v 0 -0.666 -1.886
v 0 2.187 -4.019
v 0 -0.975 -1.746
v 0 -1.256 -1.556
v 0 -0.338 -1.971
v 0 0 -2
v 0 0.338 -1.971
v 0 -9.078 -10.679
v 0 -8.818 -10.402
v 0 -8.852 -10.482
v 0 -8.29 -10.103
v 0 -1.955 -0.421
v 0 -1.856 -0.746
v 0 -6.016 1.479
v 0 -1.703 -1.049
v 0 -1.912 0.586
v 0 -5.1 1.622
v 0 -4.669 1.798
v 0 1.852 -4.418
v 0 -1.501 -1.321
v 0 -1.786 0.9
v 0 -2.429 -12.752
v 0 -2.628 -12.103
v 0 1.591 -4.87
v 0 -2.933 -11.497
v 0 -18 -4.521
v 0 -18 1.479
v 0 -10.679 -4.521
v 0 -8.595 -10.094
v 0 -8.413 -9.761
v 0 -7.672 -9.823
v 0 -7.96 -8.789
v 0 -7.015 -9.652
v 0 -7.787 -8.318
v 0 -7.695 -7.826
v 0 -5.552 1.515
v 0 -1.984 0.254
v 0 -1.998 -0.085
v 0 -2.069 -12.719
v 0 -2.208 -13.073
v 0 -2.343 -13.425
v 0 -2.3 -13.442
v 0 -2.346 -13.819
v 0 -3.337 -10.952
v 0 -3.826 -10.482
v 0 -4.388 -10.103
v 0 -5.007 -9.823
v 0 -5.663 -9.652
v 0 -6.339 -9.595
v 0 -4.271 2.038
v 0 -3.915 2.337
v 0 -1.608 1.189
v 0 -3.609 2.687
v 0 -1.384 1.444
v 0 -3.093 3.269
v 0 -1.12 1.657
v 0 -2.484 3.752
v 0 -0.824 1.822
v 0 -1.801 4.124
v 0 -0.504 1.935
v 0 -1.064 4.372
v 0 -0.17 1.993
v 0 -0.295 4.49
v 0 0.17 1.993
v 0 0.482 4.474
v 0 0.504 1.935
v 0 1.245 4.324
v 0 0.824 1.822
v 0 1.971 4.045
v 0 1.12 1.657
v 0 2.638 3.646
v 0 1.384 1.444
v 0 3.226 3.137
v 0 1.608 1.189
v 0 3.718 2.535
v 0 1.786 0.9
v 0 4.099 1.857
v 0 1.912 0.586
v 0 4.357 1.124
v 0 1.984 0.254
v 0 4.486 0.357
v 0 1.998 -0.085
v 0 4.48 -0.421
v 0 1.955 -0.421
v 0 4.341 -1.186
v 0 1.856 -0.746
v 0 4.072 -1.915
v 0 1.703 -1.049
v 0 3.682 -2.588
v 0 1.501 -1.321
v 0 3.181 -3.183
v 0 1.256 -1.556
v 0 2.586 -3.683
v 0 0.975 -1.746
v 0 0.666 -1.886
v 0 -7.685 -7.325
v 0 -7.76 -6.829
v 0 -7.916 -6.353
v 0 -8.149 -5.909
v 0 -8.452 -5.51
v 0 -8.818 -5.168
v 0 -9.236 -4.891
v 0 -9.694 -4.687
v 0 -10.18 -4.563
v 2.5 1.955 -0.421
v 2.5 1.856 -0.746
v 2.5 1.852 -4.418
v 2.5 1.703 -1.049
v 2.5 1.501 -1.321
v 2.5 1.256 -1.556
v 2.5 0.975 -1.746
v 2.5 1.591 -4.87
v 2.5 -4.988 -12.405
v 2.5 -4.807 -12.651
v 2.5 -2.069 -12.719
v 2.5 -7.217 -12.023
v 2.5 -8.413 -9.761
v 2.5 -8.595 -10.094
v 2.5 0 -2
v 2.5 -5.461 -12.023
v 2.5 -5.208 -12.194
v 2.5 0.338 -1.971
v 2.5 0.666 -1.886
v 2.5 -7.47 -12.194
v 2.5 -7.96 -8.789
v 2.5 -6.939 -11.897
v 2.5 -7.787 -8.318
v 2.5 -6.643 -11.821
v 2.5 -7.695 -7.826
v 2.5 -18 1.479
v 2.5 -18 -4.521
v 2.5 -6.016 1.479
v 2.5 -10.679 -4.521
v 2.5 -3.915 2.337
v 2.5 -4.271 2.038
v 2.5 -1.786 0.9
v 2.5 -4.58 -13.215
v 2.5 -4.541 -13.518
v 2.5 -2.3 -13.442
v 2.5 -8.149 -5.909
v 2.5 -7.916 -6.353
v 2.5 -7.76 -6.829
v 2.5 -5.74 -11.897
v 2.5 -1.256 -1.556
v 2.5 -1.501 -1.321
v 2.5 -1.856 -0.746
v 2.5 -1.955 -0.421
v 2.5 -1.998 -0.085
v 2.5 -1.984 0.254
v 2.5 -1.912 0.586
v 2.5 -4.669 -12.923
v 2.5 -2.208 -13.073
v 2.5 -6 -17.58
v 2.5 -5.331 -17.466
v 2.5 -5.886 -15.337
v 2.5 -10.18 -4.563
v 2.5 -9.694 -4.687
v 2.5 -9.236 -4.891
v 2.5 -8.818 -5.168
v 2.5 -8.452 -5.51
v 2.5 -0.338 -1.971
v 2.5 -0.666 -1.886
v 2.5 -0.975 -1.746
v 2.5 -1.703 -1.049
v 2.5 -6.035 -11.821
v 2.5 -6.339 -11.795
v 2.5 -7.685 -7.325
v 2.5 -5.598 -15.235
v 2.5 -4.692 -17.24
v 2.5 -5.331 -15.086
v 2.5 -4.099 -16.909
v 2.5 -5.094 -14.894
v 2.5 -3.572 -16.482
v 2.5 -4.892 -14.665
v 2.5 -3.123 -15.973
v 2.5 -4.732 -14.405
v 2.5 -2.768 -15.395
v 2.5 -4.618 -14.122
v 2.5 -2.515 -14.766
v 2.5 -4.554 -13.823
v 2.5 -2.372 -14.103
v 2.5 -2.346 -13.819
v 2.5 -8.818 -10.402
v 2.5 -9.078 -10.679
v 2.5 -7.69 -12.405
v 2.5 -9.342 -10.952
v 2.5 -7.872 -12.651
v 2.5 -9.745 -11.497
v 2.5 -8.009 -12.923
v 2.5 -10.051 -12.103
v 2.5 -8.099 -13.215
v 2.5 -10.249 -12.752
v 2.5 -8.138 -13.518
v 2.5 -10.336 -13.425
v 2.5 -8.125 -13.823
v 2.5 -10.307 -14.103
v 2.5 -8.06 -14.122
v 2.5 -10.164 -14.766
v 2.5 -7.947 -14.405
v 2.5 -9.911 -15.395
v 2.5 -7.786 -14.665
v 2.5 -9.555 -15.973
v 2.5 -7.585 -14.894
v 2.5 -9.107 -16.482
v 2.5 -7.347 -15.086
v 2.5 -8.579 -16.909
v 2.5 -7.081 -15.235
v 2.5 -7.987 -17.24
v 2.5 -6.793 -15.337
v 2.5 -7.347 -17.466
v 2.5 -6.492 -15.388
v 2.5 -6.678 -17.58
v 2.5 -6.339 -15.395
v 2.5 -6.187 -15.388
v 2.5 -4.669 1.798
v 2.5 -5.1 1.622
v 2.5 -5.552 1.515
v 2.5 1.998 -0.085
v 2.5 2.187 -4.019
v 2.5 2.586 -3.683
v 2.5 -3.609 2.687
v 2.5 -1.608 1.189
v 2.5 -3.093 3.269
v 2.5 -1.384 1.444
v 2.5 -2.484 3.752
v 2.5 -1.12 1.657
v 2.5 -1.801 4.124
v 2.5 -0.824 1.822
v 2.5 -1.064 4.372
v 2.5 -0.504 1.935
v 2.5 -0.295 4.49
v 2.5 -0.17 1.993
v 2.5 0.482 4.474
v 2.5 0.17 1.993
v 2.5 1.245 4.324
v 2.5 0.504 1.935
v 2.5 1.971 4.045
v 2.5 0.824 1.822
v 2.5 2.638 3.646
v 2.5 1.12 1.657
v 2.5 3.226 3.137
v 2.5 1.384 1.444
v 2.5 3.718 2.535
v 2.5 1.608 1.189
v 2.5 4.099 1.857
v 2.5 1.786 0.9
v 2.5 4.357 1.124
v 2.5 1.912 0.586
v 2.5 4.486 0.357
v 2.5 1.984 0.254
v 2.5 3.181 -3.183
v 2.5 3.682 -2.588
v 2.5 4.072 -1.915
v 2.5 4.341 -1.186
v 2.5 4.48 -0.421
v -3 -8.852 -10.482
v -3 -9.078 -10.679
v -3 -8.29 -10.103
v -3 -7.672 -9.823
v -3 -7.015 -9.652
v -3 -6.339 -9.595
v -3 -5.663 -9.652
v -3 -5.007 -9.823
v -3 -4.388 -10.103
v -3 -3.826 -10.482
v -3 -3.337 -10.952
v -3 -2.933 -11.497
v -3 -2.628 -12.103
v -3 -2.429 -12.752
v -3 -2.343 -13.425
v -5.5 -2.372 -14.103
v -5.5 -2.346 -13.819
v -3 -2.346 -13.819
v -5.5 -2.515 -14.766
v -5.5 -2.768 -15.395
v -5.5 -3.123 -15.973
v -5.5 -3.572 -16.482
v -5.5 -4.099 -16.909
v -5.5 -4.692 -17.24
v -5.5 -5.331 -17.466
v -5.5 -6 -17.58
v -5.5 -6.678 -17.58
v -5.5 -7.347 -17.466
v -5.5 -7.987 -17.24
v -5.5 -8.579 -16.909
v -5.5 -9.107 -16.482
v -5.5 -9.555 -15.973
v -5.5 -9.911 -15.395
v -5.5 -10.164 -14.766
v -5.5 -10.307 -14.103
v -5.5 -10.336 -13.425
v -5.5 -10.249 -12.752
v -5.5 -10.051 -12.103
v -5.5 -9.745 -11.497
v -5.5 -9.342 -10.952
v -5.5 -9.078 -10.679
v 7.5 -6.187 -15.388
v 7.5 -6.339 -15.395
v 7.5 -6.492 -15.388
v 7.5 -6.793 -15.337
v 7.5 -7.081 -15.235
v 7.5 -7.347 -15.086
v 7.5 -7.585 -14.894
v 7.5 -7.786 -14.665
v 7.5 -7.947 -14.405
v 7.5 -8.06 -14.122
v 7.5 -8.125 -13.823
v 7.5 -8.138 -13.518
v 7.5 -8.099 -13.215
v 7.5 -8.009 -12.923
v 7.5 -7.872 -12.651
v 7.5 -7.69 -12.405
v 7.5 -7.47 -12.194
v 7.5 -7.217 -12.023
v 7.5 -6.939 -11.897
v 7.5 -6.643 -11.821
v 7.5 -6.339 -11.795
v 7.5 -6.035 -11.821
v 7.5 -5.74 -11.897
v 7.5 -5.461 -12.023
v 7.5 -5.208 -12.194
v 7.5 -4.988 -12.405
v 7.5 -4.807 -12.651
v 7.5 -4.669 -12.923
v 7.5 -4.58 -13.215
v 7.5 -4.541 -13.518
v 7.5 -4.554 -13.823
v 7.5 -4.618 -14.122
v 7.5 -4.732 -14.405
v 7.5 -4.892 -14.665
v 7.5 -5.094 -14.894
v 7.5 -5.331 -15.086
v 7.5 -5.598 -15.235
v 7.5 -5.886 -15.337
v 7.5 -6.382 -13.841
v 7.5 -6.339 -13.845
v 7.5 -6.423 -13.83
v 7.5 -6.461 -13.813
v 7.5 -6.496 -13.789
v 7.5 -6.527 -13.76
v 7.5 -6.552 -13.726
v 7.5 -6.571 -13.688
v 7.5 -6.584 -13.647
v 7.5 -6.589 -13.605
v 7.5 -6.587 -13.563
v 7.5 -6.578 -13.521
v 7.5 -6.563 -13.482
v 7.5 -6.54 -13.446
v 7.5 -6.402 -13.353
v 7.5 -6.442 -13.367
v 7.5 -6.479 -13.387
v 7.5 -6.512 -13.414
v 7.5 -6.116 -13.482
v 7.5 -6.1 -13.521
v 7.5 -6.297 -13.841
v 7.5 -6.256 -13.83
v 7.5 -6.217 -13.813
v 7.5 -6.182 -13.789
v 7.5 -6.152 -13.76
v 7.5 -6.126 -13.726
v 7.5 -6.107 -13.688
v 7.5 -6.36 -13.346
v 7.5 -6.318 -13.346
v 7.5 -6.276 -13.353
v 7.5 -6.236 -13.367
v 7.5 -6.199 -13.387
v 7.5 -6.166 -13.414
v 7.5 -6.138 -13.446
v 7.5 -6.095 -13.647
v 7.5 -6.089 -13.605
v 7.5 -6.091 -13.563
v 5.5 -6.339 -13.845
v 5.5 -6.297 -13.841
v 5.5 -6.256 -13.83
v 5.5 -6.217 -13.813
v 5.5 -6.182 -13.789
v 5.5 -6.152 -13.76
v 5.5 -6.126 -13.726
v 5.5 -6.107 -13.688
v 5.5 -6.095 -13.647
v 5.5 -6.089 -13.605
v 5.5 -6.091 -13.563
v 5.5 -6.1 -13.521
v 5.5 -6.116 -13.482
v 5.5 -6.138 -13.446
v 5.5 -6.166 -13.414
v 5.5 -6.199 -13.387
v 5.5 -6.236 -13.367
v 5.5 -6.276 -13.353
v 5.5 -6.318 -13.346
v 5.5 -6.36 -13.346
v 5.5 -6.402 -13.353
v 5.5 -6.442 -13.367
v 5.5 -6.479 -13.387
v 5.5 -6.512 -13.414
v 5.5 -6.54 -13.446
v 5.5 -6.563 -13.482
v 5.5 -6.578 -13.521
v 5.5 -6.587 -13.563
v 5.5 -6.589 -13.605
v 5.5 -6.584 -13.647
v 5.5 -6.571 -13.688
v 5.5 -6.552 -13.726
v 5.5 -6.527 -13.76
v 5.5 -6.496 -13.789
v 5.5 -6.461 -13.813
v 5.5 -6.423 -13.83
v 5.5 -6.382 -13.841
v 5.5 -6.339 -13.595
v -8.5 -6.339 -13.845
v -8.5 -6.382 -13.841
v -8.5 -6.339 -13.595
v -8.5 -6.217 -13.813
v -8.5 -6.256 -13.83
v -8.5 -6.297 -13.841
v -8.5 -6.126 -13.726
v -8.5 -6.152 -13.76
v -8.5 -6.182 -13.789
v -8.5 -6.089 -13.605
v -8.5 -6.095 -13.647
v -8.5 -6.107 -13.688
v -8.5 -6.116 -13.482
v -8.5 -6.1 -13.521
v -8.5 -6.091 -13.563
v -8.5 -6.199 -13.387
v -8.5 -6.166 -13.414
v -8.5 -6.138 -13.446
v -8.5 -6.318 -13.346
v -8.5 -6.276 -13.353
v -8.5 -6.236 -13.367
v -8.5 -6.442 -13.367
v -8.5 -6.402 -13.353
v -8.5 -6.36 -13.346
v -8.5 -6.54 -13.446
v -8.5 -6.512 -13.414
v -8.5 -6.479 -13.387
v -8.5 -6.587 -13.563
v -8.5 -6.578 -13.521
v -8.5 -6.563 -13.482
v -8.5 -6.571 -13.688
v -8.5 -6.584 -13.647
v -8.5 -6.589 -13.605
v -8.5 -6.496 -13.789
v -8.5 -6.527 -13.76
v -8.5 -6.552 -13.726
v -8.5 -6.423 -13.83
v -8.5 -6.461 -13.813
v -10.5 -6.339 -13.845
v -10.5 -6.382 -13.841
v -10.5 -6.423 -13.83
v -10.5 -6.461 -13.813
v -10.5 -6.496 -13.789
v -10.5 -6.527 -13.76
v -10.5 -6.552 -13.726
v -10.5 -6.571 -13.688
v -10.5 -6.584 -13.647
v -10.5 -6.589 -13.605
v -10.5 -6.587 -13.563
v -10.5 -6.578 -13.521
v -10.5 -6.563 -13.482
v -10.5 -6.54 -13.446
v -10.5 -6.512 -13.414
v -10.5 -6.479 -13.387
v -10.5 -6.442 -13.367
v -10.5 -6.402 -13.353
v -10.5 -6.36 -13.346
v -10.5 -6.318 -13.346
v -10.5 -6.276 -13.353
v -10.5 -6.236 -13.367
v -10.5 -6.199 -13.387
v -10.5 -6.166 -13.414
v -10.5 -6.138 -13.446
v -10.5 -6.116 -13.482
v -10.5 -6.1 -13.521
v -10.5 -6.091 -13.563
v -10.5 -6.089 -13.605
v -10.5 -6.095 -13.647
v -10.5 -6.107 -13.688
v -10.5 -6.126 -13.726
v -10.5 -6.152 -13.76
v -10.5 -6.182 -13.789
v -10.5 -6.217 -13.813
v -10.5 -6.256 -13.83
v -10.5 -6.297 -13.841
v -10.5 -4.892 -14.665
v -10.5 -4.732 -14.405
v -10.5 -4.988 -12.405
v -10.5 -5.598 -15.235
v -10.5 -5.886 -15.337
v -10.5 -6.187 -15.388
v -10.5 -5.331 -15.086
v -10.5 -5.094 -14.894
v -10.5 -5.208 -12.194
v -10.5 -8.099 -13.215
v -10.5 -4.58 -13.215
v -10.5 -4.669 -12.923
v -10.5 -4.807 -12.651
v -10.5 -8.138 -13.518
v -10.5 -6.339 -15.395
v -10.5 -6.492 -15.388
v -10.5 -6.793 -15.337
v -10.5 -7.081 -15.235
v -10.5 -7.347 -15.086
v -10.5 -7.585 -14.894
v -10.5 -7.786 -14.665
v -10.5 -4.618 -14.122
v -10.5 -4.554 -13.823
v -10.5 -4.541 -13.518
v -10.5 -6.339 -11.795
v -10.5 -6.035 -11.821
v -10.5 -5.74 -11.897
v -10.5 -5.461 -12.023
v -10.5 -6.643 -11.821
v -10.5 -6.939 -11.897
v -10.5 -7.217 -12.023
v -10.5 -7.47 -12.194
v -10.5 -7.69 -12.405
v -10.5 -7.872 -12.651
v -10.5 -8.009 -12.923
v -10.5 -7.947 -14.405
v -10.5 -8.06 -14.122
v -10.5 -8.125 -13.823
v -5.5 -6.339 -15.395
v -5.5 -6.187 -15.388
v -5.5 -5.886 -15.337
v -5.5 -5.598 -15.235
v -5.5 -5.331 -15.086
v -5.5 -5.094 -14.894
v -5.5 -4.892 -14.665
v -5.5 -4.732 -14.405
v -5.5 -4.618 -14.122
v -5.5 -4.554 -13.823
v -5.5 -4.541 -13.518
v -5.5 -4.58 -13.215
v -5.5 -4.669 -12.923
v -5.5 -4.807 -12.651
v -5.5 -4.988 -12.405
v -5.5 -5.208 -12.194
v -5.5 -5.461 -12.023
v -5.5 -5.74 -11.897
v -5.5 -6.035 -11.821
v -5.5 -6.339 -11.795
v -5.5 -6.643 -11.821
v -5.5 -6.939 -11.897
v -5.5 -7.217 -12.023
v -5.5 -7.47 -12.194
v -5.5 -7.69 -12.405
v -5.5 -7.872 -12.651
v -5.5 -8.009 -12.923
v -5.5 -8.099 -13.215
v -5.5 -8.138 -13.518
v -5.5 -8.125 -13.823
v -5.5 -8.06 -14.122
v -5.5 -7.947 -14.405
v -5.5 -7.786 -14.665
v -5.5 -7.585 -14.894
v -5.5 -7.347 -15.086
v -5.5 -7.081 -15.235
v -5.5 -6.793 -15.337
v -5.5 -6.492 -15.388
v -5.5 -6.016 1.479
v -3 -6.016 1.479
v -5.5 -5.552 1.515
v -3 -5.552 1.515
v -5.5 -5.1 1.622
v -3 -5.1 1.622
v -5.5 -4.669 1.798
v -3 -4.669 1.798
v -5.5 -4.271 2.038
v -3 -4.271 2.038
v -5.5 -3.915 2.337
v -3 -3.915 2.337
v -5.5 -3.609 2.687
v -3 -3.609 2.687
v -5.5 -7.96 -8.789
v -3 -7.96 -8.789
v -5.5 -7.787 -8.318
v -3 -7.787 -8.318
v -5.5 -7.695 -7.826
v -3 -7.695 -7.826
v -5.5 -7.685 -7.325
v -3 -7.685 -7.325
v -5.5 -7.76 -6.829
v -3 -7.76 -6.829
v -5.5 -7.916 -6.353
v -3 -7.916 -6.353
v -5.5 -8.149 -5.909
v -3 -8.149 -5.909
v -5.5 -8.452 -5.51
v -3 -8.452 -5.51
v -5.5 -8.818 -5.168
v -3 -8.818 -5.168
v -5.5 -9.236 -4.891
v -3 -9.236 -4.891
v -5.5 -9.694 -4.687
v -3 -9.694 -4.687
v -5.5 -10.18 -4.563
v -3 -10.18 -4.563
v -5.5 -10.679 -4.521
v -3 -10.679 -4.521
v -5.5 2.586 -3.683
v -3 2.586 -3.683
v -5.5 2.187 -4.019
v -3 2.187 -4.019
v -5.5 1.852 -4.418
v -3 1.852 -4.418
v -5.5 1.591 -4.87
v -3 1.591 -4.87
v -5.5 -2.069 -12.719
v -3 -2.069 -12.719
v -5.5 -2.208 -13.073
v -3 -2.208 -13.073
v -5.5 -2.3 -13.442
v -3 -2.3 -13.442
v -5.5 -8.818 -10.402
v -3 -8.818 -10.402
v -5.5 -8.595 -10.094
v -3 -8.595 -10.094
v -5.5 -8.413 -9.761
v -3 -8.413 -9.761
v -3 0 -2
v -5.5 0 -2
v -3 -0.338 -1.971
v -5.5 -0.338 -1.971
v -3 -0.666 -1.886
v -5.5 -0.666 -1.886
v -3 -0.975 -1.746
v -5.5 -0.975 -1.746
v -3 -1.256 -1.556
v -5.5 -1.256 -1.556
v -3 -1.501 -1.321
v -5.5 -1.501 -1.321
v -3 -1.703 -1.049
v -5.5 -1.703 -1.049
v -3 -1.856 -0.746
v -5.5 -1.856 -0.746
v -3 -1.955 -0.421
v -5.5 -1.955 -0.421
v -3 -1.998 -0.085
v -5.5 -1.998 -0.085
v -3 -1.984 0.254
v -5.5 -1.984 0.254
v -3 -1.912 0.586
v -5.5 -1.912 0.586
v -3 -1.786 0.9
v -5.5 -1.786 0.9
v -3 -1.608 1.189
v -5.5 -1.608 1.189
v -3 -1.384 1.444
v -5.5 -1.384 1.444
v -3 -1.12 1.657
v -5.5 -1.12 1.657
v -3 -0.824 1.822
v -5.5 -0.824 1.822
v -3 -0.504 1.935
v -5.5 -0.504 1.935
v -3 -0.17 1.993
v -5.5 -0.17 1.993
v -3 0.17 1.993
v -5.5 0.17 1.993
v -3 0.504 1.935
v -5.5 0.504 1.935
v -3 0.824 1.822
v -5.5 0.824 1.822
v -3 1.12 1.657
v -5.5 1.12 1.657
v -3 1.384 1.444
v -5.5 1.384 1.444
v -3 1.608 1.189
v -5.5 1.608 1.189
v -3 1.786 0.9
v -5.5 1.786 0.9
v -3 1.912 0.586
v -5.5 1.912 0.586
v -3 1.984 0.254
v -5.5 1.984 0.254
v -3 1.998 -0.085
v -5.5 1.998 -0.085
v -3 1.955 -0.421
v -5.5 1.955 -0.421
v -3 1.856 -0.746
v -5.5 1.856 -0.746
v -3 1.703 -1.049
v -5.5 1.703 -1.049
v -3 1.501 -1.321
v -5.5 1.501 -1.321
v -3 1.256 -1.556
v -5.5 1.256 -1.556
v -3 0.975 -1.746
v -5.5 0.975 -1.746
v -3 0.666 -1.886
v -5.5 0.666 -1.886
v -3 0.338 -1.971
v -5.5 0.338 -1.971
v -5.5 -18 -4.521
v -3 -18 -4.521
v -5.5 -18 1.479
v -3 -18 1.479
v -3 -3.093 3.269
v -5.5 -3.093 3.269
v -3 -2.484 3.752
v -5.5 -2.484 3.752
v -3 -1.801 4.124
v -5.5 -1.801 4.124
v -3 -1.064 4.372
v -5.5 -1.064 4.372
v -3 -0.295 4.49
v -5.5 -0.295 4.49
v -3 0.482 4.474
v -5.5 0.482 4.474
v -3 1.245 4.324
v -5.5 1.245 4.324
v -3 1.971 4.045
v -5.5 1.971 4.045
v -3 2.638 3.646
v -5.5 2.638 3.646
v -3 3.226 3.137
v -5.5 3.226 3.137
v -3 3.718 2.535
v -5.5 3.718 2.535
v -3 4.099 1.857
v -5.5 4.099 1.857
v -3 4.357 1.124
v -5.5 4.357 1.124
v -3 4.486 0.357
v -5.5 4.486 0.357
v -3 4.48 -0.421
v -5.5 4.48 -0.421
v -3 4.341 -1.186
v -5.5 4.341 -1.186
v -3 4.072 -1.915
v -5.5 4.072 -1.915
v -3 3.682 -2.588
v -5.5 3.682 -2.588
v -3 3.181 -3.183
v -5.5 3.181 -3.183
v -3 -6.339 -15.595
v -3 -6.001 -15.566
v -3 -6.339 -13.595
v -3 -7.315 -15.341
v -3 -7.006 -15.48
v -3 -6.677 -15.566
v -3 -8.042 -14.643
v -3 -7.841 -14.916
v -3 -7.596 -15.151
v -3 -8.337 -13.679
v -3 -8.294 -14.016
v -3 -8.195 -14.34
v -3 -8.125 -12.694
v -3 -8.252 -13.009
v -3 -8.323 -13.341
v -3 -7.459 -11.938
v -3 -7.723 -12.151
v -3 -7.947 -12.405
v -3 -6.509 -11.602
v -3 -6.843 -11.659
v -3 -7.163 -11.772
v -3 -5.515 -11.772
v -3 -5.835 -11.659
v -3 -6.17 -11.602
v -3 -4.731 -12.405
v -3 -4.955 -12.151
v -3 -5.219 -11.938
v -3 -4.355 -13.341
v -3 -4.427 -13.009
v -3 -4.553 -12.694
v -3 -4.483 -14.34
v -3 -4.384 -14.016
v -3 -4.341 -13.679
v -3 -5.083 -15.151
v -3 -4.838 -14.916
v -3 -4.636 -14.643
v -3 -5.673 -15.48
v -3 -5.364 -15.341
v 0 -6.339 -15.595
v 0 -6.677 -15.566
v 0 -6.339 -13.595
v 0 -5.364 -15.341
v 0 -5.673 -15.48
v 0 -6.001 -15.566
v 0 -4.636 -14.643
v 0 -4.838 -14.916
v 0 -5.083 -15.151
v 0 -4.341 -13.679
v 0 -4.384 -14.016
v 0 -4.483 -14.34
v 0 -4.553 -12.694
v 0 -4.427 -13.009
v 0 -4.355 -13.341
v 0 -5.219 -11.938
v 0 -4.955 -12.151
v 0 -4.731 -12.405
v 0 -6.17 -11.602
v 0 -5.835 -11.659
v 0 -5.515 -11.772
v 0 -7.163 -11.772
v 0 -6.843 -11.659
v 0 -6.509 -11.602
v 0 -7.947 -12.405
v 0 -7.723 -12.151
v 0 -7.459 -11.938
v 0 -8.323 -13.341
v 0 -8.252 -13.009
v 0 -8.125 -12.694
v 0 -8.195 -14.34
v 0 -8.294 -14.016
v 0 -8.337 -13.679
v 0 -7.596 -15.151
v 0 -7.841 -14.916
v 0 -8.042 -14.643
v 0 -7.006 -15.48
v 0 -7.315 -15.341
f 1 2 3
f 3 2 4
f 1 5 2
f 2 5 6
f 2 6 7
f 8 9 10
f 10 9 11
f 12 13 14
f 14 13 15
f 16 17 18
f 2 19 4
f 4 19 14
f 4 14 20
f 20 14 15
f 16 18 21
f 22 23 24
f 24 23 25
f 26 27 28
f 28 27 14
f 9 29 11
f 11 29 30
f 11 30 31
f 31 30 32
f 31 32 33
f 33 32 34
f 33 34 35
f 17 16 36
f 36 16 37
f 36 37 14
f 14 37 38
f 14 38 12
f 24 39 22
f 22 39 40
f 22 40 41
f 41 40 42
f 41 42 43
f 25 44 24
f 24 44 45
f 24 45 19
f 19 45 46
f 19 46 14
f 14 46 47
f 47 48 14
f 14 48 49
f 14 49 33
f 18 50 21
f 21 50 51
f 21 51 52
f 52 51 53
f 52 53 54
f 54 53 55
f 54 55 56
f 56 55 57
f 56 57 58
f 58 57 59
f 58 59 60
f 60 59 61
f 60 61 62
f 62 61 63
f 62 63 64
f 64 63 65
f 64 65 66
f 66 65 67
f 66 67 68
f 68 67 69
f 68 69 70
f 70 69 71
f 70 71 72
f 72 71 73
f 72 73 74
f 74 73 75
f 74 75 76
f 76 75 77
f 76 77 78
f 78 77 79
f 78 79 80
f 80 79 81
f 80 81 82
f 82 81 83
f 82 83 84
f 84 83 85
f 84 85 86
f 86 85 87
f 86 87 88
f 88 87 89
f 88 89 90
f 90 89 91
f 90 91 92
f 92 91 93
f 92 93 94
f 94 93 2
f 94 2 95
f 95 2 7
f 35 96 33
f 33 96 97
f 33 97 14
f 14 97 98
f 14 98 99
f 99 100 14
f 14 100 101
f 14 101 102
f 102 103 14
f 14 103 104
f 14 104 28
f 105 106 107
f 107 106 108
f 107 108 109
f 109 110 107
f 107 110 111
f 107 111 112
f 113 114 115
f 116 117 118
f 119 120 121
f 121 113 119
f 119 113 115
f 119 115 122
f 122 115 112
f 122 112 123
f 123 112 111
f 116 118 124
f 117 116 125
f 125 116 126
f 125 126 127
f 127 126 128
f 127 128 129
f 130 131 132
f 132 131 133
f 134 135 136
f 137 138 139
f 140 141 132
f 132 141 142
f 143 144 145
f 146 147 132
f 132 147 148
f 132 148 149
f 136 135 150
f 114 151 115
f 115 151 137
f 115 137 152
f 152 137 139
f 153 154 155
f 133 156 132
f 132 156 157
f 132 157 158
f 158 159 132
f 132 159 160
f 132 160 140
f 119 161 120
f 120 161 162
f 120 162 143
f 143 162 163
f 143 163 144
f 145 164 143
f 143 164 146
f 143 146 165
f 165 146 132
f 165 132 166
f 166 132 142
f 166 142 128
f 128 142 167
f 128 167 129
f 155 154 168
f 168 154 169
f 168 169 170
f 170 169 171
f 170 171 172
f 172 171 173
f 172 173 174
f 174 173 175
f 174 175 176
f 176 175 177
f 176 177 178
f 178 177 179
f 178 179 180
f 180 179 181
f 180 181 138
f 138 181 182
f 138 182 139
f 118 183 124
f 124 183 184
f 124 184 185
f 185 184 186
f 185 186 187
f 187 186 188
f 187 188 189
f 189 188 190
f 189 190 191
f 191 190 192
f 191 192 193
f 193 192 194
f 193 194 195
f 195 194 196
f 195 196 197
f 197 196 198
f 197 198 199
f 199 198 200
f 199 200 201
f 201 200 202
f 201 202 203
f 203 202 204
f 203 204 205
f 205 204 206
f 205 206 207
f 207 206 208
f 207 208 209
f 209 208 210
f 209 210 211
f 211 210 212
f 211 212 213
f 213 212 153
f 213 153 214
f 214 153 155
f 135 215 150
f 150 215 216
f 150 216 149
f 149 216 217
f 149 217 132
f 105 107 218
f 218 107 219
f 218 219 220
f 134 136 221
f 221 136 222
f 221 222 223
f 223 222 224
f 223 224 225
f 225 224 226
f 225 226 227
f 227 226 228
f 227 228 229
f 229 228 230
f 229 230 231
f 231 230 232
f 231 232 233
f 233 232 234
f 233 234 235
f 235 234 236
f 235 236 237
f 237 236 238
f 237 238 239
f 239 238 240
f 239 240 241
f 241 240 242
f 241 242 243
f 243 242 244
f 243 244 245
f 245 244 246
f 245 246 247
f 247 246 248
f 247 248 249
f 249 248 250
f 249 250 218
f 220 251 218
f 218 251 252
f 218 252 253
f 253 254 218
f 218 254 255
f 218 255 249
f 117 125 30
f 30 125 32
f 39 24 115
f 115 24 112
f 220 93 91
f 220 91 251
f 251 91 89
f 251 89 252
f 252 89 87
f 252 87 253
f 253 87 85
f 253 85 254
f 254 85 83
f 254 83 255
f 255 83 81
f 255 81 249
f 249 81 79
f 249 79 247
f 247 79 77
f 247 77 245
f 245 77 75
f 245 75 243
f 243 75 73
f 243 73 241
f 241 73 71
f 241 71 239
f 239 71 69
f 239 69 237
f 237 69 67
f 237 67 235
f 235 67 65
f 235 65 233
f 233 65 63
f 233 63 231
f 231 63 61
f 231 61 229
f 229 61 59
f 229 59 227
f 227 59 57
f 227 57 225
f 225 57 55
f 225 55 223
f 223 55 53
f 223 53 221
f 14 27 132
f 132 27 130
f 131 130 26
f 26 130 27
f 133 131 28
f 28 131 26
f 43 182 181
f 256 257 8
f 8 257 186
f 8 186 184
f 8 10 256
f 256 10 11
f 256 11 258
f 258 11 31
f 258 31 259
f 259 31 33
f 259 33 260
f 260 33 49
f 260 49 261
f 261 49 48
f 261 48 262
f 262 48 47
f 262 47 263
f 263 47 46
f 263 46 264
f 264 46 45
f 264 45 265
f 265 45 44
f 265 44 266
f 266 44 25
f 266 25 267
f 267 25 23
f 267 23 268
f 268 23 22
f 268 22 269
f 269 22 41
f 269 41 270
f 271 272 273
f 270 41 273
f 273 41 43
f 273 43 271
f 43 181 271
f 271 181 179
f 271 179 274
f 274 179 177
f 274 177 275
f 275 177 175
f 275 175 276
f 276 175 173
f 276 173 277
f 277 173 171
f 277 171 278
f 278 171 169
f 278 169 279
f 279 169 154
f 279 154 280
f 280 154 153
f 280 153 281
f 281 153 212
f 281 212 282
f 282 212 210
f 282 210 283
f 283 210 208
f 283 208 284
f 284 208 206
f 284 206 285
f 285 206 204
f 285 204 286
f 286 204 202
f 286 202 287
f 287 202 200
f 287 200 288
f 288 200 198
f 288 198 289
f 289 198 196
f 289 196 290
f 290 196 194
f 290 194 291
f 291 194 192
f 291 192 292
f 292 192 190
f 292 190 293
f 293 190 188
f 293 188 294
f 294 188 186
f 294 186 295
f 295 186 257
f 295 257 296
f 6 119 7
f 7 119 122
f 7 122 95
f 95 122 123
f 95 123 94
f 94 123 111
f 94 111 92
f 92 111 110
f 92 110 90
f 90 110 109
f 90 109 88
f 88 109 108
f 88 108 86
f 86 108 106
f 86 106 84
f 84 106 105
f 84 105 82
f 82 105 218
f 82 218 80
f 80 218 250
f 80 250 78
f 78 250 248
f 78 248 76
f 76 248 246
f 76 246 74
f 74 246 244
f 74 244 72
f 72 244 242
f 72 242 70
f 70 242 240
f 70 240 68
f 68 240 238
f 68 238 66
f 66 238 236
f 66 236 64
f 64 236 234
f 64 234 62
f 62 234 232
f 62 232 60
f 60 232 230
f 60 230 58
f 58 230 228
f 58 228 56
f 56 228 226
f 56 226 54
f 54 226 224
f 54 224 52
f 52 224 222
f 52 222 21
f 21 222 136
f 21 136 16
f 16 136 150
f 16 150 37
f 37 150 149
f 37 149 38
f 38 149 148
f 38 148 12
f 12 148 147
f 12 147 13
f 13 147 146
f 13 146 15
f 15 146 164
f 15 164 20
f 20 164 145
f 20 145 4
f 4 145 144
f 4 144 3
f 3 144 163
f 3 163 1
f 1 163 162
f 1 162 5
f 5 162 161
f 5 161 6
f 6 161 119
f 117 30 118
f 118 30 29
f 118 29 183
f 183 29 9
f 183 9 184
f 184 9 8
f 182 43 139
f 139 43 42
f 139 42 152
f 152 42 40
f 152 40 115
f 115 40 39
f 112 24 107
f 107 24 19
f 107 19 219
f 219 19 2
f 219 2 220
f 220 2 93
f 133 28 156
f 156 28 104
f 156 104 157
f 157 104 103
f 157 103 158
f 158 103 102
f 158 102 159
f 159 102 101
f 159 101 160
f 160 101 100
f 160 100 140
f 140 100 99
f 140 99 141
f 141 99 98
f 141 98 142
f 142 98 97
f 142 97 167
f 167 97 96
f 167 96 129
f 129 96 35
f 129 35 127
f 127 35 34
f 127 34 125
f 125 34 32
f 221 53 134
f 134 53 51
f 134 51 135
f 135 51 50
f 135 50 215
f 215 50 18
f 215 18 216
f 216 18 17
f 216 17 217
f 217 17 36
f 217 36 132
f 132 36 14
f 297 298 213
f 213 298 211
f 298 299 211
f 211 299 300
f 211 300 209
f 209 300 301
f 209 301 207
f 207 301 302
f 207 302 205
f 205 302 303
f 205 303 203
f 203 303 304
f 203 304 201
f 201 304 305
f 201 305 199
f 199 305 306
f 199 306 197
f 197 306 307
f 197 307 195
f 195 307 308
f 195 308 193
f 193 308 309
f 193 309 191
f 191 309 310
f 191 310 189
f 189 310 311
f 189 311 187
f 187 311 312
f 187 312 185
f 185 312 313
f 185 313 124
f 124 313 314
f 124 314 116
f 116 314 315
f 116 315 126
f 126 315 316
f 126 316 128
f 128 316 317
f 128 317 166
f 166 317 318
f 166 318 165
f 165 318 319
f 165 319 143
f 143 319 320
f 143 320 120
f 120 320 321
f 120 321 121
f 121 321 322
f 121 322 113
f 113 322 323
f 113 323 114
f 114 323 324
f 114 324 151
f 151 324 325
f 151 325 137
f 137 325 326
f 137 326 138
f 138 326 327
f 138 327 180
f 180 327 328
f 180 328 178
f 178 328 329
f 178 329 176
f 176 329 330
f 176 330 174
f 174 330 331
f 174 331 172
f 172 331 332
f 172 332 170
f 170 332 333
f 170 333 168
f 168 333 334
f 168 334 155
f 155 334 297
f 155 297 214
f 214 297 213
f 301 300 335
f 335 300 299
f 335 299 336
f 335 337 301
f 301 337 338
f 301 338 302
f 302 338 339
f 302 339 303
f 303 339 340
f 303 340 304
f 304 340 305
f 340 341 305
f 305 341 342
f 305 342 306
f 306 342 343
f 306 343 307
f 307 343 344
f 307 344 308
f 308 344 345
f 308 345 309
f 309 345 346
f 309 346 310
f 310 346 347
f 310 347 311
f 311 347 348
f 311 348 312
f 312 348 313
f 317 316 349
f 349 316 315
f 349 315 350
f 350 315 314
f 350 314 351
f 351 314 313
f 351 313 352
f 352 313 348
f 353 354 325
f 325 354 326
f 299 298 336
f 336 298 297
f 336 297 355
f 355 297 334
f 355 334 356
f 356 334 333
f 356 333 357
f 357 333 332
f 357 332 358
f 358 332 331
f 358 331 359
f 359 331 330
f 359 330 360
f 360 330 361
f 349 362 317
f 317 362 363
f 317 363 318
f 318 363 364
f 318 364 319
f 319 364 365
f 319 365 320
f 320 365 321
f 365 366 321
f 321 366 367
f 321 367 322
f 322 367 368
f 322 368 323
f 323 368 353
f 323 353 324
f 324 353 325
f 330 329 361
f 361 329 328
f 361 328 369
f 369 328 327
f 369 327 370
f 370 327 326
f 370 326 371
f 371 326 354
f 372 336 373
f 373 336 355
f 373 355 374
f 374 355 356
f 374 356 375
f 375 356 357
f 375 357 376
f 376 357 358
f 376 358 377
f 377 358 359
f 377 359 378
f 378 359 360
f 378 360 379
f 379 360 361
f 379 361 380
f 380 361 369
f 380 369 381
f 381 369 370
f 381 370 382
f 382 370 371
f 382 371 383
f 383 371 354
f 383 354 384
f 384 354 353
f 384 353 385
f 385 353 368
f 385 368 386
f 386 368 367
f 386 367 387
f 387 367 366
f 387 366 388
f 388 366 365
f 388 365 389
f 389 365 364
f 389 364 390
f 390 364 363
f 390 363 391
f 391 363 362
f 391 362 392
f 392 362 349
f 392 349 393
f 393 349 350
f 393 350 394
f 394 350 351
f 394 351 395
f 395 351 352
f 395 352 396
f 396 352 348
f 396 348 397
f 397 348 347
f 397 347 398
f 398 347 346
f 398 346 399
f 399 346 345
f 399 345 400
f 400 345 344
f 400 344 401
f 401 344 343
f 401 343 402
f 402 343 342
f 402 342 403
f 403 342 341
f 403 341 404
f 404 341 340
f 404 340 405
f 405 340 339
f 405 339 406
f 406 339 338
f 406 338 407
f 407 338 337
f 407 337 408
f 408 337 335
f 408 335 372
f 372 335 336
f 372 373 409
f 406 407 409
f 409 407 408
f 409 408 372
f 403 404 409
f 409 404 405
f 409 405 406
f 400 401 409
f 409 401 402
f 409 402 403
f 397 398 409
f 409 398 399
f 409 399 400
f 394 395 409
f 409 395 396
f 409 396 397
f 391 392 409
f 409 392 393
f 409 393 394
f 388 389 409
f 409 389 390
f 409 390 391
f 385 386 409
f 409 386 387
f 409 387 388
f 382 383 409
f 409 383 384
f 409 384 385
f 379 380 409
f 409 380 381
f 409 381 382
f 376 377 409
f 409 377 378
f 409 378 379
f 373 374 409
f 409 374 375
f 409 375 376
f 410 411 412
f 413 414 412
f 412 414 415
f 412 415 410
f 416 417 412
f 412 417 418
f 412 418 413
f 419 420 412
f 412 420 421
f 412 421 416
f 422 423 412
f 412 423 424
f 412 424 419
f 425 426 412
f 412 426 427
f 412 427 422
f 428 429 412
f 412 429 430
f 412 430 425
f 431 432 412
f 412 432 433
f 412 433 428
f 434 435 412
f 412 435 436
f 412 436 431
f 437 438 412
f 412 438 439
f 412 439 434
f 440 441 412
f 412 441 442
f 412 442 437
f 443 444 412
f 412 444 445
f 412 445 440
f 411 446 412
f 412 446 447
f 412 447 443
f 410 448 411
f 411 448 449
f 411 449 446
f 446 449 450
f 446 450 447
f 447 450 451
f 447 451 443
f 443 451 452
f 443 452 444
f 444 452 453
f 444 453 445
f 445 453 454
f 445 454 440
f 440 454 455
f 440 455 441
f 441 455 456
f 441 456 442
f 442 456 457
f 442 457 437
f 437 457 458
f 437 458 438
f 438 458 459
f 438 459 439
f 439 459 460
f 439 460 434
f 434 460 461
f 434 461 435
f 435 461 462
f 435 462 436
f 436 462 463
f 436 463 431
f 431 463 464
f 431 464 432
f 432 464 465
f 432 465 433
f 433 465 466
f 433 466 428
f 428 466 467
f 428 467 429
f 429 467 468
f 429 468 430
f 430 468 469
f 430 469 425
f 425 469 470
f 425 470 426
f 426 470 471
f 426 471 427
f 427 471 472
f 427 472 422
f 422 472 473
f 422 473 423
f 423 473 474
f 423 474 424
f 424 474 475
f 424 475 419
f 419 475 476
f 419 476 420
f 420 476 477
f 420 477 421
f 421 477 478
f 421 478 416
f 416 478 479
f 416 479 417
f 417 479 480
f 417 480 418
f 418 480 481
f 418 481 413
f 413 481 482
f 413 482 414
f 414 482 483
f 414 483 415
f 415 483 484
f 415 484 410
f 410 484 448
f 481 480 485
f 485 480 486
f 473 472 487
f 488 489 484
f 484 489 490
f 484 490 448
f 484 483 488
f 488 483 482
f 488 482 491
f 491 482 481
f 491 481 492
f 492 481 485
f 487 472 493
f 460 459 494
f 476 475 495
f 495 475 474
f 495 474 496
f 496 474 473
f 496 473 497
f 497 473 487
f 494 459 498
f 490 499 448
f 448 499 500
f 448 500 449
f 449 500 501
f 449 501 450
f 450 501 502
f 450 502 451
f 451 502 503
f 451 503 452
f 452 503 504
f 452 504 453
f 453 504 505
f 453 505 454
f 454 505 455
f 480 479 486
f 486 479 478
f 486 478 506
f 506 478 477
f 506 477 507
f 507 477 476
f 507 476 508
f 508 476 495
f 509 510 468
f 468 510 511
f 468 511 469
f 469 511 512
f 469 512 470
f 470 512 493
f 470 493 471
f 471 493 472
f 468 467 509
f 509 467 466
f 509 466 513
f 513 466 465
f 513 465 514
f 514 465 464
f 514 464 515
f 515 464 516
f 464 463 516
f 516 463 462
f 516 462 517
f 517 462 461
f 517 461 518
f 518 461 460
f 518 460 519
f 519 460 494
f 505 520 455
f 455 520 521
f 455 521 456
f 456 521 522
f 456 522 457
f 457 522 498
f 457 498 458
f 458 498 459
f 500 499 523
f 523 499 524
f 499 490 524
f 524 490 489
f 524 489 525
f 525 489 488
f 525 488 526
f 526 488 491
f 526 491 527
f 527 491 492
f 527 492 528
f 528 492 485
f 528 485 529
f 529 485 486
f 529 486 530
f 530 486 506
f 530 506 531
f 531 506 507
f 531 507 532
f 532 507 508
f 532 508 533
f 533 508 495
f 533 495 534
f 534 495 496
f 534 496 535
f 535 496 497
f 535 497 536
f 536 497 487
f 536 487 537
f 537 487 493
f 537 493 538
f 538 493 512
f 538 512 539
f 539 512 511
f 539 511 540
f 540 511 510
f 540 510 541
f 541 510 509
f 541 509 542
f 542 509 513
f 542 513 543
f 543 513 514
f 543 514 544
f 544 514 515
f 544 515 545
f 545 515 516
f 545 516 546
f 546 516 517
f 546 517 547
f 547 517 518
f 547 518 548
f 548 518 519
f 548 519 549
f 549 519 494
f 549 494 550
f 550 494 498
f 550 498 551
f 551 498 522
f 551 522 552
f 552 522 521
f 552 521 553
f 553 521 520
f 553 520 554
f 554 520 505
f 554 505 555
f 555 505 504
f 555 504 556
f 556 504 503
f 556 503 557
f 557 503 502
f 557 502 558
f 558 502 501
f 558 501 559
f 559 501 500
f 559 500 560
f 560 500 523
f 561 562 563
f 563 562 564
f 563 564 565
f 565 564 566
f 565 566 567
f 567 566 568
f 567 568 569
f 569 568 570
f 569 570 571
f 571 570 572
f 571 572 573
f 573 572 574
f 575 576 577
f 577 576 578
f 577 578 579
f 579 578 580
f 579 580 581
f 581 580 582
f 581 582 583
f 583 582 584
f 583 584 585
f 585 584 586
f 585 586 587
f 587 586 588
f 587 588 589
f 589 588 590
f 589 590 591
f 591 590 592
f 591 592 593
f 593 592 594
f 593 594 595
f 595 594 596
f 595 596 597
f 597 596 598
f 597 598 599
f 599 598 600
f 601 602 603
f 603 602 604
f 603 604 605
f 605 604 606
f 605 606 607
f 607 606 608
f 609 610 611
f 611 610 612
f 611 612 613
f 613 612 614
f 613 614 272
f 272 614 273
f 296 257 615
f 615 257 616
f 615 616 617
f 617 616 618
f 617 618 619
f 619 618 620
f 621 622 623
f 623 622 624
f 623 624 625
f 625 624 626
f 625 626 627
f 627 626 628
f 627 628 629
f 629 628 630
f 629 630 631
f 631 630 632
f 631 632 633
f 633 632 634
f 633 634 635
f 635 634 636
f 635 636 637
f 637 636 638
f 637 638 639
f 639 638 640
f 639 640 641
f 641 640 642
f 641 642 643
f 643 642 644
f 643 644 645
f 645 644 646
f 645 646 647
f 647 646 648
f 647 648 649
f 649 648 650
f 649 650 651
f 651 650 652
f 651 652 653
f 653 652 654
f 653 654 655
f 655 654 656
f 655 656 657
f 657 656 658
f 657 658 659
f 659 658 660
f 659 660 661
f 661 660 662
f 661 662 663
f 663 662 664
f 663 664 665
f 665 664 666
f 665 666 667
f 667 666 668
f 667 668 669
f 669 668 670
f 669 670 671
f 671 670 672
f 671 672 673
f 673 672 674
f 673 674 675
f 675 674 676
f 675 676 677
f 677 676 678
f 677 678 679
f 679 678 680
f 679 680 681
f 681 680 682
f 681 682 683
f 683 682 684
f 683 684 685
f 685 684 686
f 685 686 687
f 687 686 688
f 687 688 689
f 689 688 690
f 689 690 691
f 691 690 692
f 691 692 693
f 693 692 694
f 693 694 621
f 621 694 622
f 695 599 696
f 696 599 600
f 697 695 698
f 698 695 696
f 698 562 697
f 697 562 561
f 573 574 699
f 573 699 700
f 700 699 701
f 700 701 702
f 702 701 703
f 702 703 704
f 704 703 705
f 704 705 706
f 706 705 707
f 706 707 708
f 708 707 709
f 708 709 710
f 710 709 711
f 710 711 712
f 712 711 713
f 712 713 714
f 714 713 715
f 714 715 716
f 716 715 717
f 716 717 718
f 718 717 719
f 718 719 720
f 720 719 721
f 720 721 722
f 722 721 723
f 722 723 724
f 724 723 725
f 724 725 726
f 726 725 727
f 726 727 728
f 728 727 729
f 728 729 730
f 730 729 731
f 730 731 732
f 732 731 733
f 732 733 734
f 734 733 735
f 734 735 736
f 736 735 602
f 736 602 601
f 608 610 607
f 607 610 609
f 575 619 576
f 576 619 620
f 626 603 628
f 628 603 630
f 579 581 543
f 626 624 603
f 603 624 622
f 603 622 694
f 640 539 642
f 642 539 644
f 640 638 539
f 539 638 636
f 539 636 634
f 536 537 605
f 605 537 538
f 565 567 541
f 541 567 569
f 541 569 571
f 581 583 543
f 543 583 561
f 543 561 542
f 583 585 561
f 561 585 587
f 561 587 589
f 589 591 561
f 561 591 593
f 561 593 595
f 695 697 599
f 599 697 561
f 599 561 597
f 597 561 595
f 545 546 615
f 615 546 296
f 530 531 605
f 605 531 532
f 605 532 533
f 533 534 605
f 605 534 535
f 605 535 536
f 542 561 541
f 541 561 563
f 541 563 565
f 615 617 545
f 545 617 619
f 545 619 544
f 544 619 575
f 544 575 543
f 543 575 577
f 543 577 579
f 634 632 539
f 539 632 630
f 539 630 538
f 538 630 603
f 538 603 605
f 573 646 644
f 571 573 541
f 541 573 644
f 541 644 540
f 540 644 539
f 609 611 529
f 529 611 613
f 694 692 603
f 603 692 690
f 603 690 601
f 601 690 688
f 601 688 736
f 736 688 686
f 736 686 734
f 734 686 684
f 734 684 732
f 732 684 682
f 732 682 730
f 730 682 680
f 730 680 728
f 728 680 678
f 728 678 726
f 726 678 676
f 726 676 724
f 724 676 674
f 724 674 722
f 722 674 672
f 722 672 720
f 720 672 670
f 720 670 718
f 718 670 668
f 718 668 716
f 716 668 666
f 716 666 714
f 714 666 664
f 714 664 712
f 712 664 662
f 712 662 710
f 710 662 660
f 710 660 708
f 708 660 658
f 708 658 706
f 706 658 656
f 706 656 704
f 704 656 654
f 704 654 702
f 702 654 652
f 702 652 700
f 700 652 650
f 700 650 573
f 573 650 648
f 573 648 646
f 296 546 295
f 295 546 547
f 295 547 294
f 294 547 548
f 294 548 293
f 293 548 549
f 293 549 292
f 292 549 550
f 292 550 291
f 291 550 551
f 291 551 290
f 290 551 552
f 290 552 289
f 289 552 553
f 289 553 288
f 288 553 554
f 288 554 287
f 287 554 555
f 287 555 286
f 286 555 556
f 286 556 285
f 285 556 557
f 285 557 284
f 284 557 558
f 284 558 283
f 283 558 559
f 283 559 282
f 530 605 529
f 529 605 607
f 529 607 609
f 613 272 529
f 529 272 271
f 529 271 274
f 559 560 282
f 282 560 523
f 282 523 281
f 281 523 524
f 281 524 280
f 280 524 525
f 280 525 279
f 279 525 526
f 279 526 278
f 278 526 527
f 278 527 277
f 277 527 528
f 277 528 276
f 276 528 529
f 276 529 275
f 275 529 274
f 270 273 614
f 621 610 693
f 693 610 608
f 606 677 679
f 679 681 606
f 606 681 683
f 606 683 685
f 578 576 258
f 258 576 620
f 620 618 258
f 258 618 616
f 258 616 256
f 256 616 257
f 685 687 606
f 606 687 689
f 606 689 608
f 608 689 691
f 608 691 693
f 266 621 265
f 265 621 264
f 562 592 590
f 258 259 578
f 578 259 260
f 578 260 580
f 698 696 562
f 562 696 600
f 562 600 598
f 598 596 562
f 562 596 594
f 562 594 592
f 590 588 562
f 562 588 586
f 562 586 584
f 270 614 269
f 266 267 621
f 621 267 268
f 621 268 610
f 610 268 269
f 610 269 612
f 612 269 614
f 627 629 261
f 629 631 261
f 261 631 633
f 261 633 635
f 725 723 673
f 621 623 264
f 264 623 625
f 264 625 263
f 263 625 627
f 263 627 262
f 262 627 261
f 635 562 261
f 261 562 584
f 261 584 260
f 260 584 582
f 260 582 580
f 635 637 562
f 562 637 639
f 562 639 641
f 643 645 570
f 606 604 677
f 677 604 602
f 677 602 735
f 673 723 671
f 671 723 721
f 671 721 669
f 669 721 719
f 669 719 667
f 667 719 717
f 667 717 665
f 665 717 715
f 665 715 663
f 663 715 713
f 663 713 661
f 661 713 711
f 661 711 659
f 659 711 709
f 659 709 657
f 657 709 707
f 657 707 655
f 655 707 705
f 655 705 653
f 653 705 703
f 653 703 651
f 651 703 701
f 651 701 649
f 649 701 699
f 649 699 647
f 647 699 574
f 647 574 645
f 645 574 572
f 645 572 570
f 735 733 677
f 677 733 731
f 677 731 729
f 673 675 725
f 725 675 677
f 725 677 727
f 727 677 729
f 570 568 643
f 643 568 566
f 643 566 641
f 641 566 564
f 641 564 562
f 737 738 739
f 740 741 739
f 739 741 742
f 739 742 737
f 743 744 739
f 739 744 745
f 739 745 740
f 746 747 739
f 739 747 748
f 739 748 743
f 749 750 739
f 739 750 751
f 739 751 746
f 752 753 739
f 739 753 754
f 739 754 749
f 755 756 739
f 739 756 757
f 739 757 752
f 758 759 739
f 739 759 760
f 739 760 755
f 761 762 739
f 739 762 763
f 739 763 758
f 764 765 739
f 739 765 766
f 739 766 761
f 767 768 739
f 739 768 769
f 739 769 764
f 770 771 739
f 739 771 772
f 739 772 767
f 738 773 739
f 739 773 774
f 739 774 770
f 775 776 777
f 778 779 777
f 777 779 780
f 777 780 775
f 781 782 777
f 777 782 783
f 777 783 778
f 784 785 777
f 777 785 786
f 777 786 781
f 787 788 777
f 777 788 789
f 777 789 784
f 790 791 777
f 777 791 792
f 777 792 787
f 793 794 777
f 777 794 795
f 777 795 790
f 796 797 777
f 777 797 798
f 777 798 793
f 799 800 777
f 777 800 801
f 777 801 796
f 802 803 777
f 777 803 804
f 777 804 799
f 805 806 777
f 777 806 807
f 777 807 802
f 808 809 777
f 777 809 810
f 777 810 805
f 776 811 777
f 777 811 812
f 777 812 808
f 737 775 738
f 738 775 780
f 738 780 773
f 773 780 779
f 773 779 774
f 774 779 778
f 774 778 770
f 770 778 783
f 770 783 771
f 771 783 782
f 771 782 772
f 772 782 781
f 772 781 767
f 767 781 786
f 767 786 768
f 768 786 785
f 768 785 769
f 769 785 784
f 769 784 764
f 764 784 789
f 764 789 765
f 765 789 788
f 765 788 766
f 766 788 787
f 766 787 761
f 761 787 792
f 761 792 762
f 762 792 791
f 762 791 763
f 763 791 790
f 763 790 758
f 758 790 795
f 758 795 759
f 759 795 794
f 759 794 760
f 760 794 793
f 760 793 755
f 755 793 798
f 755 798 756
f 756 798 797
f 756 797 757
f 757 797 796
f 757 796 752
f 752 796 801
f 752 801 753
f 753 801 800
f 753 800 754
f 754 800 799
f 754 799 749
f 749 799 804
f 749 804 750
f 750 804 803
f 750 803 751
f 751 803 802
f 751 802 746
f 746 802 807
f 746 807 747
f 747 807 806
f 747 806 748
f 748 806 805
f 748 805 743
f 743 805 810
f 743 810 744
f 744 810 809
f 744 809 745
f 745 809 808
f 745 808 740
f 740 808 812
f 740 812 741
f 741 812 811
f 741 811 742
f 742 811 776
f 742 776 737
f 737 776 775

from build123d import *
from build123d.topology import SkipClean

# Parameters (mm, degrees)
EXTRUDE_1_DEPTH          = 2.5
CUT_EXTRUDE_3_DEPTH      = 26.294674154
CUT_EXTRUDE_3_DEPTH_BACK = 26.294674154
SKETCH_1_3_R             = 2
FILLET_1_R               = 3
EXTRUDE_START            = -1.5
EXTRUDE_2_DEPTH          = 1.5
EXTRUDE_5_DEPTH          = 2.5
SKETCH_2_R               = 1.8
EXTRUDE_4_DEPTH          = 5
SKETCH_3_R               = 0.25
CUT_EXTRUDE_4_DEPTH      = 2


with BuildPart() as part:
    # 草图1 → 凸台-拉伸1 (new body)
    with BuildSketch(Plane(origin=(0, 0, 0), x_dir=(0, 0, -1), z_dir=(1, 0, 0))):
        with BuildLine():
            Line((1.479163916, 3.172077255), (-1.479163916, -3.172077255))
            Line((-1.479163916, -3.172077255), (3.19185305, -3.172077255))
            ThreePointArc((3.19185305, -3.172077255), (4.160128527, -1.715613779), (4.5, 0))
            ThreePointArc((4.5, 0), (4.384156276, 1.014482011), (4.042589444, 1.9767323))
            Line((4.042589444, 1.9767323), (1.479163916, 3.172077255))
        make_face()
        with BuildLine():
            Line((1.084261612, -4.36742221), (-1.479163916, -3.172077255))
            Line((-1.479163916, -3.172077255), (-1.479163916, -4.249949895))
            ThreePointArc((-1.479163916, -4.249949895), (-0.206002169, -4.495282317), (1.084261612, -4.36742221))
        make_face()
        with BuildLine():
            Line((3.19185305, -3.172077255), (-1.479163916, -3.172077255))
            Line((-1.479163916, -3.172077255), (1.084261612, -4.36742221))
            ThreePointArc((1.084261612, -4.36742221), (2.220022869, -3.914268573), (3.19185305, -3.172077255))
        make_face()
        with BuildLine():
            Line((-1.479163916, -4.249949895), (-1.479163916, -3.172077255))
            Line((-1.479163916, -3.172077255), (1.479163916, 3.172077255))
            Line((1.479163916, 3.172077255), (4.042589444, 1.9767323))
            ThreePointArc((4.042589444, 1.9767323), (-3.366850219, 2.985685784), (-1.479163916, -4.249949895))
        make_face()
        with BuildLine():
            ThreePointArc((4.5, 0), (4.160128527, -1.715613779), (3.19185305, -3.172077255))
            Line((3.19185305, -3.172077255), (4.520836084, -3.172077255))
            Line((4.520836084, -3.172077255), (4.520836084, -5.969923204))
            Line((4.520836084, -5.969923204), (10.360395407, -8.692954436))
            ThreePointArc((10.360395407, -8.692954436), (9.969385657, -4.648800879), (13.318723239, -2.348799927))
            Line((13.318723239, -2.348799927), (4.042589444, 1.9767323))
            ThreePointArc((4.042589444, 1.9767323), (4.384156276, 1.014482011), (4.5, 0))
        make_face()
        with BuildLine():
            Line((4.520836084, -3.172077255), (3.19185305, -3.172077255))
            ThreePointArc((3.19185305, -3.172077255), (2.220022869, -3.914268573), (1.084261612, -4.36742221))
            Line((1.084261612, -4.36742221), (4.520836084, -5.969923204))
            Line((4.520836084, -5.969923204), (4.520836084, -3.172077255))
        make_face()
        with BuildLine():
            ThreePointArc((1.084261612, -4.36742221), (-0.206002169, -4.495282317), (-1.479163916, -4.249949895))
            Line((-1.479163916, -4.249949895), (-1.479163916, -18))
            Line((-1.479163916, -18), (4.520836084, -18))
            Line((4.520836084, -18), (4.520836084, -5.969923204))
            Line((4.520836084, -5.969923204), (1.084261612, -4.36742221))
        make_face()
        with BuildLine():
            ThreePointArc((17.594616806, -6.339273926), (16.323758221, -3.414930045), (13.318723239, -2.348799927))
            Line((13.318723239, -2.348799927), (15.073780722, -3.167196671))
            Line((15.073780722, -3.167196671), (12.115452889, -9.511351181))
            Line((12.115452889, -9.511351181), (10.360395407, -8.692954436))
            ThreePointArc((10.360395407, -8.692954436), (14.832177795, -10.143014558), (17.594616806, -6.339273926))
        make_face()
        with BuildLine():
            Line((15.073780722, -3.167196671), (13.318723239, -2.348799927))
            ThreePointArc((13.318723239, -2.348799927), (9.969385657, -4.648800879), (10.360395407, -8.692954436))
            Line((10.360395407, -8.692954436), (12.115452889, -9.511351181))
            Line((12.115452889, -9.511351181), (15.073780722, -3.167196671))
        make_face()
    extrude(amount=EXTRUDE_1_DEPTH)

    # 草图1<3> → 切除-拉伸3 (cut, two sides: drawn at the far end of the back side and taken through both)
    with BuildSketch(Plane(origin=(0, 0, 0), x_dir=(0, 0, -1), z_dir=(1, 0, 0)).offset(-CUT_EXTRUDE_3_DEPTH_BACK)):
        Circle(SKETCH_1_3_R)
        with Locations((13.594616806, -6.339273926)):
            Circle(SKETCH_1_3_R)
    extrude(amount=CUT_EXTRUDE_3_DEPTH + CUT_EXTRUDE_3_DEPTH_BACK, mode=Mode.SUBTRACT)

    # 圆角1
    fillet_1_edges = [part.edges().sort_by_distance(p)[0] for p in [
        (1.25, -2.348799927, -13.318723239),
        (1.25, 1.9767323, -4.042589444),
        (1.25, -8.692954436, -10.360395407),
        (1.25, -5.969923204, -4.520836084),
        (1.25, -4.249949895, 1.479163916),
    ]]
    fillet(fillet_1_edges, radius=FILLET_1_R)

    # 草图1<4> → 凸台-拉伸2 (add)
    with SkipClean():  # the faces are left unmerged after this step: merging them gives an invalid solid
        with BuildSketch(Plane(origin=(0, 0, 0), x_dir=(0, 0, -1), z_dir=(1, 0, 0)).offset(EXTRUDE_START)):
            with BuildLine():
                ThreePointArc((17.594616806, -6.339273926), (16.323758221, -3.414930045), (13.318723239, -2.348799927))
                Line((13.318723239, -2.348799927), (15.073780722, -3.167196671))
                Line((15.073780722, -3.167196671), (14.439853329, -4.526658352))
                ThreePointArc((14.439853329, -4.526658352), (15.281399697, -5.264674709), (15.594616806, -6.339273926))
                ThreePointArc((15.594616806, -6.339273926), (14.669216022, -8.026056818), (12.749380282, -8.1518895))
                Line((12.749380282, -8.1518895), (12.115452889, -9.511351181))
                Line((12.115452889, -9.511351181), (10.360395407, -8.692954436))
                ThreePointArc((10.360395407, -8.692954436), (14.832177795, -10.143014558), (17.594616806, -6.339273926))
            make_face()
            with BuildLine():
                Line((15.073780722, -3.167196671), (13.318723239, -2.348799927))
                ThreePointArc((13.318723239, -2.348799927), (9.969385657, -4.648800879), (10.360395407, -8.692954436))
                Line((10.360395407, -8.692954436), (12.115452889, -9.511351181))
                Line((12.115452889, -9.511351181), (12.749380282, -8.1518895))
                ThreePointArc((12.749380282, -8.1518895), (11.782001231, -5.494037403), (14.439853329, -4.526658352))
                Line((14.439853329, -4.526658352), (15.073780722, -3.167196671))
            make_face()
        extrude(amount=EXTRUDE_2_DEPTH)

    # 草图1<5> → 凸台-拉伸5 (add)
    with BuildSketch(Plane(origin=(0, 0, 0), x_dir=(0, 0, -1), z_dir=(1, 0, 0))):
        with BuildLine():
            ThreePointArc((15.594616806, -6.339273926), (15.281399697, -5.264674709), (14.439853329, -4.526658352))
            Line((14.439853329, -4.526658352), (12.749380282, -8.1518895))
            ThreePointArc((12.749380282, -8.1518895), (14.669216022, -8.026056818), (15.594616806, -6.339273926))
        make_face()
        with BuildLine():
            Line((12.749380282, -8.1518895), (14.439853329, -4.526658352))
            ThreePointArc((14.439853329, -4.526658352), (11.782001231, -5.494037403), (12.749380282, -8.1518895))
        make_face()
    extrude(amount=EXTRUDE_5_DEPTH)

    # 草图2 → 凸台-拉伸4 (add)
    with BuildSketch(Plane(origin=(2.5, 0, 0), x_dir=(0, 0, -1), z_dir=(1, 0, 0))):
        with Locations((13.594616806, -6.339273926)):
            Circle(SKETCH_2_R)
    extrude(amount=EXTRUDE_4_DEPTH)

    # 草图3 → 切除-拉伸4 (cut)
    with BuildSketch(Plane(origin=(7.5, 0, 0), x_dir=(0, 0, -1), z_dir=(1, 0, 0))):
        with Locations((13.594616806, -6.339273926)):
            Circle(SKETCH_3_R)
    extrude(amount=-CUT_EXTRUDE_4_DEPTH, mode=Mode.SUBTRACT)

    # 镜向1: part across plane


with BuildPart() as part_1:
    add(part.part)
    add(part.part.mirror(Plane.ZY.offset(1.5)))


solid = part_1.part
